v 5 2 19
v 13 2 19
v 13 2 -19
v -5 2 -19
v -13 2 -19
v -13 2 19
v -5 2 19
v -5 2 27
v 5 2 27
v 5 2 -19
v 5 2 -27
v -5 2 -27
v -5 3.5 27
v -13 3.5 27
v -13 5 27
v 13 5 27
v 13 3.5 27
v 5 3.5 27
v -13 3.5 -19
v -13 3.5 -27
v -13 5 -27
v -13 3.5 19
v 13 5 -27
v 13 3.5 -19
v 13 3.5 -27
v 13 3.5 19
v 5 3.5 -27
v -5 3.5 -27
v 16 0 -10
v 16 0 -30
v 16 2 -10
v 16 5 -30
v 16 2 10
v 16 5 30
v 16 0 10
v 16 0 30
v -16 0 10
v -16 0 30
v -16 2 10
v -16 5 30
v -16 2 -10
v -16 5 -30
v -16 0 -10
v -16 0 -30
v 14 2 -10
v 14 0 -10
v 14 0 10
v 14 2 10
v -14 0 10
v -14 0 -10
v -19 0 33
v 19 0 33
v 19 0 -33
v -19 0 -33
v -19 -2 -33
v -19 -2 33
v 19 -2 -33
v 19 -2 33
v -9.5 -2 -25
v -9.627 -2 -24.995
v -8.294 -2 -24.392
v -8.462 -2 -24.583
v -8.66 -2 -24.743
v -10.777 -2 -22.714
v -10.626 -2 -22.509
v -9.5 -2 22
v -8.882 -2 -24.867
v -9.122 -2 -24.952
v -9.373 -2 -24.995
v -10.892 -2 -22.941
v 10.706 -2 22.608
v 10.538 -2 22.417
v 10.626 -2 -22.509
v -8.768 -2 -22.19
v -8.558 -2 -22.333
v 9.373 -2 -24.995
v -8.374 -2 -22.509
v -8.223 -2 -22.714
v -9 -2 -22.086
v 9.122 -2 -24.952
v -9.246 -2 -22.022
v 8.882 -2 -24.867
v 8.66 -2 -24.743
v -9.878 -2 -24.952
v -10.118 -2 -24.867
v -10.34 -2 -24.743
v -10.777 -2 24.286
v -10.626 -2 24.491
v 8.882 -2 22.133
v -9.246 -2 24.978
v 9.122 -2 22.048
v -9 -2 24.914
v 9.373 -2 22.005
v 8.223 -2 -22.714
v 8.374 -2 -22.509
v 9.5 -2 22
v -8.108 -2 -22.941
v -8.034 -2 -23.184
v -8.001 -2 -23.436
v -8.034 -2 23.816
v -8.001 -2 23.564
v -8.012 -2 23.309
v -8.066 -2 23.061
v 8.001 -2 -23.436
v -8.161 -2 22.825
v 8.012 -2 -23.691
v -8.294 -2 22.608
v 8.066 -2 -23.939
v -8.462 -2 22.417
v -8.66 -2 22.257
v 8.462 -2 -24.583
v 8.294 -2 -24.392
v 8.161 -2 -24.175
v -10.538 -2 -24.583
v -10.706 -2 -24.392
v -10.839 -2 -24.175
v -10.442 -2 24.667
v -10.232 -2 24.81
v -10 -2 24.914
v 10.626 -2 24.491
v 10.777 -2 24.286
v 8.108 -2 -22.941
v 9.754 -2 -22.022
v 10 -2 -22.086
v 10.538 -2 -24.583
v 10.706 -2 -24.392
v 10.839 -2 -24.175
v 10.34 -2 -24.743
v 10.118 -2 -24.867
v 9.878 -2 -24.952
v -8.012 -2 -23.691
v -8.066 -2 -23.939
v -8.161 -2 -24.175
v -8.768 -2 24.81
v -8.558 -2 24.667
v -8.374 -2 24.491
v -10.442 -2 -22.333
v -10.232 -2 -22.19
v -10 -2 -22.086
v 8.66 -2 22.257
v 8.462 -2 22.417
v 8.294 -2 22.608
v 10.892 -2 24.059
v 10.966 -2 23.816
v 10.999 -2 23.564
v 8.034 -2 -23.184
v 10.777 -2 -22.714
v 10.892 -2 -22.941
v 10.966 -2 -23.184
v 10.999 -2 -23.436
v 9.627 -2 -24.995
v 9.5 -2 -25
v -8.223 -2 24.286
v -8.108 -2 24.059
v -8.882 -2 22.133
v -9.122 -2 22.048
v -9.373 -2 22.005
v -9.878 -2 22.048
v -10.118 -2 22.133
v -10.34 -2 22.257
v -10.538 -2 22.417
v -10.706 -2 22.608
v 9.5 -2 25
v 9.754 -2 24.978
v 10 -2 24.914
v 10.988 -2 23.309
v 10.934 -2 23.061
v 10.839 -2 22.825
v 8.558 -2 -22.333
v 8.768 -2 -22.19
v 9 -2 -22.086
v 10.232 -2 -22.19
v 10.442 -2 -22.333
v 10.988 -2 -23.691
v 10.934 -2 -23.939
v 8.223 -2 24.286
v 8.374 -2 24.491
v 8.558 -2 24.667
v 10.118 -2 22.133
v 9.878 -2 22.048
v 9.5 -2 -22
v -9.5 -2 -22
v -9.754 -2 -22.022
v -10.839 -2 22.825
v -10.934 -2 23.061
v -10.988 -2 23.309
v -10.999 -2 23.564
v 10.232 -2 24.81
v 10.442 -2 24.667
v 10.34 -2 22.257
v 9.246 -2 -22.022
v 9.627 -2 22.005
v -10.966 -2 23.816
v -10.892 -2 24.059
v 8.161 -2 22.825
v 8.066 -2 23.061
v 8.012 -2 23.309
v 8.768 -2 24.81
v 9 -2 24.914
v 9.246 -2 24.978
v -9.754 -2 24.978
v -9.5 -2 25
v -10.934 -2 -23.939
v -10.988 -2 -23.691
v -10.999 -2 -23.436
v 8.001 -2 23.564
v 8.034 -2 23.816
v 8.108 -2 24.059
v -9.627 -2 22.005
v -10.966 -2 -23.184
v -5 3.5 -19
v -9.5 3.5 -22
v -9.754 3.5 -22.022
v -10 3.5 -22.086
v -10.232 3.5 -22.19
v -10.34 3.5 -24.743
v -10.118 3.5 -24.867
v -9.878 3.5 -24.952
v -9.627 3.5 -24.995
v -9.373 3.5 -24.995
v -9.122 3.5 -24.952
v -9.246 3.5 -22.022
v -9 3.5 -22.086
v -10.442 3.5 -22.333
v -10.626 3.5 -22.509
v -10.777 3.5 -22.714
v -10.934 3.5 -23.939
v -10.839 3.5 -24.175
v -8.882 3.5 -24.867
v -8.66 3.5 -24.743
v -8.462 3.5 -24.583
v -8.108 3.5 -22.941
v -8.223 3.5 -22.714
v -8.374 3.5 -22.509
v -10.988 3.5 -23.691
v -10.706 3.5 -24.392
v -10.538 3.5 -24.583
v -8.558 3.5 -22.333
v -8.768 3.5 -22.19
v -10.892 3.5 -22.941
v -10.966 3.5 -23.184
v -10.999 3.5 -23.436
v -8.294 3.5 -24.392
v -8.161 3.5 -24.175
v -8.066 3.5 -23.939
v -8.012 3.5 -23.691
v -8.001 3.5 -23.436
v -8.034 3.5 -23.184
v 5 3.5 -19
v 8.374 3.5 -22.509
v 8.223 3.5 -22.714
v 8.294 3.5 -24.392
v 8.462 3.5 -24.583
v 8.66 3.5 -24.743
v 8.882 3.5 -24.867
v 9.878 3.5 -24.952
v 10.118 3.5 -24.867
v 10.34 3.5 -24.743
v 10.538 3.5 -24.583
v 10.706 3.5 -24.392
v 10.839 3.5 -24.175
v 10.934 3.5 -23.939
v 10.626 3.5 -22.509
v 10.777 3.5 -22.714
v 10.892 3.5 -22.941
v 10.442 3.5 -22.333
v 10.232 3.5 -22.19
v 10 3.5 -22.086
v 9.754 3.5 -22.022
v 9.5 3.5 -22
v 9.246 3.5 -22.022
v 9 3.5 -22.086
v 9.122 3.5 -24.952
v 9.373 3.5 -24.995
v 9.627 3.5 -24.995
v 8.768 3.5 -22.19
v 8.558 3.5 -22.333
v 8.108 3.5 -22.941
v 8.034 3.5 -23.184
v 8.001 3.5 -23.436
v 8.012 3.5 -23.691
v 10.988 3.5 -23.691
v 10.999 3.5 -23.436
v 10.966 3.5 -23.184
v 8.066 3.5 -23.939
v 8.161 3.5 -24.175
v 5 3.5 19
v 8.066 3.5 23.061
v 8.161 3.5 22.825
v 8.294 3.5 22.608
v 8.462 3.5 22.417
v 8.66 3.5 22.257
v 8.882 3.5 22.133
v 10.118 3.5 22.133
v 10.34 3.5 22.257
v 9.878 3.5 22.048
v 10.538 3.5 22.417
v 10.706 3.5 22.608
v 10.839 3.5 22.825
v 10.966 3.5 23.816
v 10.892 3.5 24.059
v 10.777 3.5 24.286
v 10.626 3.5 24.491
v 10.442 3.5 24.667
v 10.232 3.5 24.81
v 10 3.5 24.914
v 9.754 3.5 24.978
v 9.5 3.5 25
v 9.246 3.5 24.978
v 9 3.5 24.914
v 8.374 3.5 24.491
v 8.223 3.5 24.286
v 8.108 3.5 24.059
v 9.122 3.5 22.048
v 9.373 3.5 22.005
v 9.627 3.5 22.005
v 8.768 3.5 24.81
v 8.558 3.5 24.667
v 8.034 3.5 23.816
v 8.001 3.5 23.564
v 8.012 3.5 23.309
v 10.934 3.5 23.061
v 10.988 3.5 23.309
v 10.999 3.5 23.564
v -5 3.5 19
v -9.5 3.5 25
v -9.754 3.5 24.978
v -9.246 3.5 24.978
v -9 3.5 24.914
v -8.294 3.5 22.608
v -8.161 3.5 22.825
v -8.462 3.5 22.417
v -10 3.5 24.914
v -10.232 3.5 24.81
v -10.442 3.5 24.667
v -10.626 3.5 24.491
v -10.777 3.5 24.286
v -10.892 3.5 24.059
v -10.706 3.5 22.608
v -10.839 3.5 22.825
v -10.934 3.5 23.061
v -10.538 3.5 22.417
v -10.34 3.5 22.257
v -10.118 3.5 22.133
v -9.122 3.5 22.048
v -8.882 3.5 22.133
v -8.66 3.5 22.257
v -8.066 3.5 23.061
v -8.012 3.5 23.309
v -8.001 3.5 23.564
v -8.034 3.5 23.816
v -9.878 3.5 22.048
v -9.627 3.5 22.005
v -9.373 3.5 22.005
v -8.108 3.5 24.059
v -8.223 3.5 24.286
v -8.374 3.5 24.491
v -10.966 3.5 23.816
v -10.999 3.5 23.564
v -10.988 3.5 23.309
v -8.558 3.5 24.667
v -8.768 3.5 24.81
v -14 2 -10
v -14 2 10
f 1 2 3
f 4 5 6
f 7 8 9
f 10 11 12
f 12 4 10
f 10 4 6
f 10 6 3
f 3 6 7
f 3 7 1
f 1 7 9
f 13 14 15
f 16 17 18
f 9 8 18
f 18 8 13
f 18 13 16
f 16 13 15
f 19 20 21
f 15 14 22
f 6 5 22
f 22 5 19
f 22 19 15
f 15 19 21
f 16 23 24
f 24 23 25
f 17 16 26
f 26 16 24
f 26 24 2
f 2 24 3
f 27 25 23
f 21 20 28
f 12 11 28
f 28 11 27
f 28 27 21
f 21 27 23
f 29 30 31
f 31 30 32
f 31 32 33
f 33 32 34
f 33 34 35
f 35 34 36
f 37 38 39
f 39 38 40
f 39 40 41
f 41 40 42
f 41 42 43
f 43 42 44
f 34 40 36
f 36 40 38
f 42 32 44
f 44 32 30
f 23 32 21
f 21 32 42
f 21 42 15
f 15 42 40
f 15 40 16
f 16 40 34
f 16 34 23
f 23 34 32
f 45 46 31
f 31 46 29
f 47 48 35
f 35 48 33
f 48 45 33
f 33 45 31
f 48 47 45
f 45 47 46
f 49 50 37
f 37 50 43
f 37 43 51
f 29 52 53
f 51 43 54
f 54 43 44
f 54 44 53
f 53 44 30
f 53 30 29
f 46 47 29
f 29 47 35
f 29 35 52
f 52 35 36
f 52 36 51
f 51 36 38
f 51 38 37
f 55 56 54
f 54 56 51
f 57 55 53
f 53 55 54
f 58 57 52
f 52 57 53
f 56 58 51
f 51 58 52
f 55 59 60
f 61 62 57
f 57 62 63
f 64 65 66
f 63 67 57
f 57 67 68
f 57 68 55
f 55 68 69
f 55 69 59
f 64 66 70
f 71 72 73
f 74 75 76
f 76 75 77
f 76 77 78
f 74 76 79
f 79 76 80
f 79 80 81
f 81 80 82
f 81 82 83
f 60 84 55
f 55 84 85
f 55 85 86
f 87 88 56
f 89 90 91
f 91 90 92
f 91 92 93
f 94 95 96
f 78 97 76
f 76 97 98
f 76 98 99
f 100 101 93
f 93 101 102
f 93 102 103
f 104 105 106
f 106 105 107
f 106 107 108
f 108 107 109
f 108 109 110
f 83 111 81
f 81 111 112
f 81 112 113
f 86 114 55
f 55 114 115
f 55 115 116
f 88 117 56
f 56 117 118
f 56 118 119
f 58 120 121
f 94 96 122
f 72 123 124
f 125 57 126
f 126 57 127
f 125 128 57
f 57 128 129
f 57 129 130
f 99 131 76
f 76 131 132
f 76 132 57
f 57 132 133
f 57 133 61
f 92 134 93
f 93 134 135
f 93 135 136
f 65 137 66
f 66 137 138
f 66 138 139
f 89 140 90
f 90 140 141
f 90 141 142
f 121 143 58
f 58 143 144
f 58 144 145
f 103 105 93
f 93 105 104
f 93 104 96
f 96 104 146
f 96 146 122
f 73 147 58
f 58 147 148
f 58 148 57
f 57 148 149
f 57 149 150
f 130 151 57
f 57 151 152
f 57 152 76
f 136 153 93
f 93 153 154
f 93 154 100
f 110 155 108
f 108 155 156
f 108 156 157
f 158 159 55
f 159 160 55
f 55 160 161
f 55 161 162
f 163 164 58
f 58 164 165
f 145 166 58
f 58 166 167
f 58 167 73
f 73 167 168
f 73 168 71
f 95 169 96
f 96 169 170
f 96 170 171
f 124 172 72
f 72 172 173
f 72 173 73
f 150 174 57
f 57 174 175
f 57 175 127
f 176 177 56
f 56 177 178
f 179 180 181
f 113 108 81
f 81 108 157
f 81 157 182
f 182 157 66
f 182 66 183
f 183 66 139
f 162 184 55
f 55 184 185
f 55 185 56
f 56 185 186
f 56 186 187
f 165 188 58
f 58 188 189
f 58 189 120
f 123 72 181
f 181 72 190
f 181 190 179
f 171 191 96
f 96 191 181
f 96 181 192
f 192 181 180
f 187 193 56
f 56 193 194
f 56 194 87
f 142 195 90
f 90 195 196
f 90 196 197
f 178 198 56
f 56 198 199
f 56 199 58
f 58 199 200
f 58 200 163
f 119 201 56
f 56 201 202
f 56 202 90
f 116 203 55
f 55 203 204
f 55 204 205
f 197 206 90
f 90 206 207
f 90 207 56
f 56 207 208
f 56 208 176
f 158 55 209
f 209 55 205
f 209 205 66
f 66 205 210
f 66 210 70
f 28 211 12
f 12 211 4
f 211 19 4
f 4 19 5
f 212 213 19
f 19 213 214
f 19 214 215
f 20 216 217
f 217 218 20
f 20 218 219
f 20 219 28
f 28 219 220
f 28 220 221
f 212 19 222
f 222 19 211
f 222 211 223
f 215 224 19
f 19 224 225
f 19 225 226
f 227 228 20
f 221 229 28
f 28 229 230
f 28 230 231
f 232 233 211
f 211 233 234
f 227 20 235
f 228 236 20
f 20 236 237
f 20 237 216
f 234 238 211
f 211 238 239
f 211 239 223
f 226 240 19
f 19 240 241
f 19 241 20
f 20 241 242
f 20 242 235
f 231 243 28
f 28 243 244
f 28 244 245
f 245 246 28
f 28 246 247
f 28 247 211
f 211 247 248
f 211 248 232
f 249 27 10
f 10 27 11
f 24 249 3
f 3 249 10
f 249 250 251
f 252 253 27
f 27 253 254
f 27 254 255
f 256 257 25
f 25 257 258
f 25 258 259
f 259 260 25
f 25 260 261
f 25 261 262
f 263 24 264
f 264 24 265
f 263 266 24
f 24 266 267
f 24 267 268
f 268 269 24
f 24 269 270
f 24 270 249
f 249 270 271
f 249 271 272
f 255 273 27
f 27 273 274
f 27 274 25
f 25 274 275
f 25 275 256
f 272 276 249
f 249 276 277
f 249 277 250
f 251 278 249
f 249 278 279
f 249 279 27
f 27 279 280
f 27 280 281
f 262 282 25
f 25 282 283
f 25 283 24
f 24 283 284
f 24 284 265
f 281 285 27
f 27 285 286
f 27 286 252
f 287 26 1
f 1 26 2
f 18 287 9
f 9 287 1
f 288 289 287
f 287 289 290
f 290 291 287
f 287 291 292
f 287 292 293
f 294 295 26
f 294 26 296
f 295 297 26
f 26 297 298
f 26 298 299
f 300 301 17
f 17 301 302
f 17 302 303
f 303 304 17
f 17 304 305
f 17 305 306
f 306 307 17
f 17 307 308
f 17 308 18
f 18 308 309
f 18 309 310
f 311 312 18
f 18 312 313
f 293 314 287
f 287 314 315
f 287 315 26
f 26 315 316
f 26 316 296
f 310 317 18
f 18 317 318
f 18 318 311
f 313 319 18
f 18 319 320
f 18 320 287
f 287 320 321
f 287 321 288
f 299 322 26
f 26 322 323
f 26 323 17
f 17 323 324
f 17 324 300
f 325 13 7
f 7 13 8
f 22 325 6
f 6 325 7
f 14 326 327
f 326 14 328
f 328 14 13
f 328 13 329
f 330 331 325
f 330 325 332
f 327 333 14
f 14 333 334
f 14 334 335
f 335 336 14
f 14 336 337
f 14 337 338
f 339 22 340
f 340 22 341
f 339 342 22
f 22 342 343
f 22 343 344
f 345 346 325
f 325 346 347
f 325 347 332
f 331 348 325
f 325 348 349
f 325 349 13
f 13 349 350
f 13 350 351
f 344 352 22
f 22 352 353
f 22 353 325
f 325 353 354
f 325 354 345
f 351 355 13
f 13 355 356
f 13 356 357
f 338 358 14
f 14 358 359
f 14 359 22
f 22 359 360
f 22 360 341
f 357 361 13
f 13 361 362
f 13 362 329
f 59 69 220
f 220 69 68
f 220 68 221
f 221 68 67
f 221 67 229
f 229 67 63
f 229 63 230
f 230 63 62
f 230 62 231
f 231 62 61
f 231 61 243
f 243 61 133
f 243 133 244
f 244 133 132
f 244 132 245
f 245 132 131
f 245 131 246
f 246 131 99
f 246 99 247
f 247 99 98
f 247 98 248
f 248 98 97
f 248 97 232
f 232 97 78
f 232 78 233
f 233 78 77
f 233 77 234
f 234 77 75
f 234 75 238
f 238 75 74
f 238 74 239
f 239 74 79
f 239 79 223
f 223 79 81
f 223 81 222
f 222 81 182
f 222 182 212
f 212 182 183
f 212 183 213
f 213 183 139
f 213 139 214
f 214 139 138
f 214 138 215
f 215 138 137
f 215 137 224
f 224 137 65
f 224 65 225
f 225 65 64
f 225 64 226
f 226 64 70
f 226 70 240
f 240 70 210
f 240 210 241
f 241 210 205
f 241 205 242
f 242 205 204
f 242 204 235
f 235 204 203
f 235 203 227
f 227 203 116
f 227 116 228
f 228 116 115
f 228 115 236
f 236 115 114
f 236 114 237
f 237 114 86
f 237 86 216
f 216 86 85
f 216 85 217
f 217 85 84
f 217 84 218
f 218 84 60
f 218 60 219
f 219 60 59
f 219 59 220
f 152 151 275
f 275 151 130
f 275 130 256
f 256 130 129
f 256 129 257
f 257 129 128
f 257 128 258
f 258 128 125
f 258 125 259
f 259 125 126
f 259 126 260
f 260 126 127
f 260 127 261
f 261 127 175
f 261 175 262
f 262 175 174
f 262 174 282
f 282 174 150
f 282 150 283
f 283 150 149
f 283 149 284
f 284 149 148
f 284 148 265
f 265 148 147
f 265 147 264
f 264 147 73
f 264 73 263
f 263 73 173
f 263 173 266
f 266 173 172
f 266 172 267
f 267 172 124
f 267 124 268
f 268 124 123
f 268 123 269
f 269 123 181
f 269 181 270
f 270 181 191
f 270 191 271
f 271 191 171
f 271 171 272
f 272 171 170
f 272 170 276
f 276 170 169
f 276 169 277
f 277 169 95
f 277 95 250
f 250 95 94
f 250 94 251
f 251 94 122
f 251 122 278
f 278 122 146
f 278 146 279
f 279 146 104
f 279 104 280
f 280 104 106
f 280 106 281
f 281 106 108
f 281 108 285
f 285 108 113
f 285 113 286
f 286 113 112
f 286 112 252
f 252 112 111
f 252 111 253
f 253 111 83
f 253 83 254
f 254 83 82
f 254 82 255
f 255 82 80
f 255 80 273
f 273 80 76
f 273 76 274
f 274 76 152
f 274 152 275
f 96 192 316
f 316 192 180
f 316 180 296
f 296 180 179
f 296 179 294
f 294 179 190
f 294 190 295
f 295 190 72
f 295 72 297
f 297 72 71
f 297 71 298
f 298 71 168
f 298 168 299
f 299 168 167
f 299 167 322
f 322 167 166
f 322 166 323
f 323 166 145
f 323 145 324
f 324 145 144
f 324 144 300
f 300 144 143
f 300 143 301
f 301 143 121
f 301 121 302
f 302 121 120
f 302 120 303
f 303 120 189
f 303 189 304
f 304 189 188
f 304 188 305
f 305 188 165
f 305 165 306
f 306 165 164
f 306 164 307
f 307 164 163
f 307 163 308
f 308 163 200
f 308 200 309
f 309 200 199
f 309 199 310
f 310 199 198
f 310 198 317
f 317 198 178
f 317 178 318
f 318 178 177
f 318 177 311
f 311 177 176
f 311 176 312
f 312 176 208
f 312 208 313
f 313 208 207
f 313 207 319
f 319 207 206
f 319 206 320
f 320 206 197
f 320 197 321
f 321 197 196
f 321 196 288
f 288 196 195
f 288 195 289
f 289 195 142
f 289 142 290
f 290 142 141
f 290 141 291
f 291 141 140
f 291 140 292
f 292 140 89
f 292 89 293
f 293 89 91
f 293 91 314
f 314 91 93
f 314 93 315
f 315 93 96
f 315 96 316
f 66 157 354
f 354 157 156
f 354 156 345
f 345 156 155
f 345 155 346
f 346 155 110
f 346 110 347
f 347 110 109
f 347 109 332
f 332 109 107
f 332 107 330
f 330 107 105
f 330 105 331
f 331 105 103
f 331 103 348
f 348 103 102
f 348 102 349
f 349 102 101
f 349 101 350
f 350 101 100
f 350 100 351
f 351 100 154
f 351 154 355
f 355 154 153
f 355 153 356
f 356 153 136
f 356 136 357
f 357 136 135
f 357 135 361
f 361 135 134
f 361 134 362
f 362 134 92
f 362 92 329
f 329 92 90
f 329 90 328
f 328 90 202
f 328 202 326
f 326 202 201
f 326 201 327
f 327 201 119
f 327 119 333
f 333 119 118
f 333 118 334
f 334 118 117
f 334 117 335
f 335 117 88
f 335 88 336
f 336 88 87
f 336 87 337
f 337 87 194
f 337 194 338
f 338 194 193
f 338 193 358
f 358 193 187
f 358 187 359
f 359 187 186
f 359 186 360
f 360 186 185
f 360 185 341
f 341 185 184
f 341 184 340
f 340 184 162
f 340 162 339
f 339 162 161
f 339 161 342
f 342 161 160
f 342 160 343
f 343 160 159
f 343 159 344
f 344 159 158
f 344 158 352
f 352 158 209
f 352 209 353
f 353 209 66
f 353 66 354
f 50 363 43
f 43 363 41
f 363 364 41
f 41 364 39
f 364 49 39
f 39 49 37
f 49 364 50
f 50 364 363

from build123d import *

# Parameters (mm, degrees)
SKETCH1_W           = 32
SKETCH1_H           = 60
BOSS_EXTRUDE1_DEPTH = 5
SKETCH2_W           = 26
SKETCH2_H           = 54
CUT_EXTRUDE1_DEPTH  = 3
SKETCH6_W           = 20
SKETCH6_H           = 2
CUT_EXTRUDE4_DEPTH  = 2
SKETCH7_W           = 38
SKETCH7_H           = 66
BOSS_EXTRUDE3_DEPTH = 2
SKETCH4_W           = 8
SKETCH4_H           = 8
BOSS_EXTRUDE2_DEPTH = 1.5
SKETCH3_R           = 1.5
CUT_EXTRUDE2_DEPTH  = 5.5


with BuildPart() as part:
    # Sketch1 → Boss-Extrude1 (new body)
    with BuildSketch(Plane(origin=(0, 0, 0), x_dir=(1, 0, 0), z_dir=(0, 1, 0))):
        Rectangle(SKETCH1_W, SKETCH1_H)
    extrude(amount=BOSS_EXTRUDE1_DEPTH)

    # Sketch2 → Cut-Extrude1 (cut)
    with BuildSketch(Plane(origin=(0, 5, 0), x_dir=(1, 0, 0), z_dir=(0, 1, 0))):
        Rectangle(SKETCH2_W, SKETCH2_H)
    extrude(amount=-CUT_EXTRUDE1_DEPTH, mode=Mode.SUBTRACT)

    # Sketch6 → Cut-Extrude4 (cut)
    with BuildSketch(Plane(origin=(16, 0, -14), x_dir=(0, 0, 1), z_dir=(-1, 0, 0))):
        with Locations((14, 1)):
            Rectangle(SKETCH6_W, SKETCH6_H)
    cut_extrude4 = extrude(amount=CUT_EXTRUDE4_DEPTH, mode=Mode.SUBTRACT)

    # Sketch7 → Boss-Extrude3 (add)
    with BuildSketch(Plane.XZ):
        Rectangle(SKETCH7_W, SKETCH7_H)
    extrude(amount=BOSS_EXTRUDE3_DEPTH)

    # Sketch4 → Boss-Extrude2 (add)
    with BuildSketch(Plane(origin=(0, 2, 0), x_dir=(1, 0, 0), z_dir=(0, 1, 0))):
        with Locations((9, 23)):
            Rectangle(SKETCH4_W, SKETCH4_H)
        with Locations((-9, 23)):
            Rectangle(SKETCH4_W, SKETCH4_H)
        with Locations((9, -23)):
            Rectangle(SKETCH4_W, SKETCH4_H)
        with Locations((-9, -23)):
            Rectangle(SKETCH4_W, SKETCH4_H)
    extrude(amount=BOSS_EXTRUDE2_DEPTH)

    # Sketch3 → Cut-Extrude2 (cut)
    with BuildSketch(Plane(origin=(0, 3.5, 0), x_dir=(1, 0, 0), z_dir=(0, 1, 0))):
        with Locations(Location((-9.5, 23.5, 0), (0, 0, 270))):
            Circle(SKETCH3_R)
        with Locations(Location((9.5, 23.5, 0), (0, 0, 270))):
            Circle(SKETCH3_R)
        with Locations(Location((9.5, -23.5, 0), (0, 0, 270))):
            Circle(SKETCH3_R)
        with Locations(Location((-9.5, -23.5, 0), (0, 0, 270))):
            Circle(SKETCH3_R)
    extrude(amount=-CUT_EXTRUDE2_DEPTH, mode=Mode.SUBTRACT)

    # Mirror1: Cut-Extrude4 across plane
    add(cut_extrude4.mirror(Plane(origin=(0, 0, 0), x_dir=(0, 0, 1), z_dir=(1, 0, 0))), mode=Mode.SUBTRACT)


solid = part.part
